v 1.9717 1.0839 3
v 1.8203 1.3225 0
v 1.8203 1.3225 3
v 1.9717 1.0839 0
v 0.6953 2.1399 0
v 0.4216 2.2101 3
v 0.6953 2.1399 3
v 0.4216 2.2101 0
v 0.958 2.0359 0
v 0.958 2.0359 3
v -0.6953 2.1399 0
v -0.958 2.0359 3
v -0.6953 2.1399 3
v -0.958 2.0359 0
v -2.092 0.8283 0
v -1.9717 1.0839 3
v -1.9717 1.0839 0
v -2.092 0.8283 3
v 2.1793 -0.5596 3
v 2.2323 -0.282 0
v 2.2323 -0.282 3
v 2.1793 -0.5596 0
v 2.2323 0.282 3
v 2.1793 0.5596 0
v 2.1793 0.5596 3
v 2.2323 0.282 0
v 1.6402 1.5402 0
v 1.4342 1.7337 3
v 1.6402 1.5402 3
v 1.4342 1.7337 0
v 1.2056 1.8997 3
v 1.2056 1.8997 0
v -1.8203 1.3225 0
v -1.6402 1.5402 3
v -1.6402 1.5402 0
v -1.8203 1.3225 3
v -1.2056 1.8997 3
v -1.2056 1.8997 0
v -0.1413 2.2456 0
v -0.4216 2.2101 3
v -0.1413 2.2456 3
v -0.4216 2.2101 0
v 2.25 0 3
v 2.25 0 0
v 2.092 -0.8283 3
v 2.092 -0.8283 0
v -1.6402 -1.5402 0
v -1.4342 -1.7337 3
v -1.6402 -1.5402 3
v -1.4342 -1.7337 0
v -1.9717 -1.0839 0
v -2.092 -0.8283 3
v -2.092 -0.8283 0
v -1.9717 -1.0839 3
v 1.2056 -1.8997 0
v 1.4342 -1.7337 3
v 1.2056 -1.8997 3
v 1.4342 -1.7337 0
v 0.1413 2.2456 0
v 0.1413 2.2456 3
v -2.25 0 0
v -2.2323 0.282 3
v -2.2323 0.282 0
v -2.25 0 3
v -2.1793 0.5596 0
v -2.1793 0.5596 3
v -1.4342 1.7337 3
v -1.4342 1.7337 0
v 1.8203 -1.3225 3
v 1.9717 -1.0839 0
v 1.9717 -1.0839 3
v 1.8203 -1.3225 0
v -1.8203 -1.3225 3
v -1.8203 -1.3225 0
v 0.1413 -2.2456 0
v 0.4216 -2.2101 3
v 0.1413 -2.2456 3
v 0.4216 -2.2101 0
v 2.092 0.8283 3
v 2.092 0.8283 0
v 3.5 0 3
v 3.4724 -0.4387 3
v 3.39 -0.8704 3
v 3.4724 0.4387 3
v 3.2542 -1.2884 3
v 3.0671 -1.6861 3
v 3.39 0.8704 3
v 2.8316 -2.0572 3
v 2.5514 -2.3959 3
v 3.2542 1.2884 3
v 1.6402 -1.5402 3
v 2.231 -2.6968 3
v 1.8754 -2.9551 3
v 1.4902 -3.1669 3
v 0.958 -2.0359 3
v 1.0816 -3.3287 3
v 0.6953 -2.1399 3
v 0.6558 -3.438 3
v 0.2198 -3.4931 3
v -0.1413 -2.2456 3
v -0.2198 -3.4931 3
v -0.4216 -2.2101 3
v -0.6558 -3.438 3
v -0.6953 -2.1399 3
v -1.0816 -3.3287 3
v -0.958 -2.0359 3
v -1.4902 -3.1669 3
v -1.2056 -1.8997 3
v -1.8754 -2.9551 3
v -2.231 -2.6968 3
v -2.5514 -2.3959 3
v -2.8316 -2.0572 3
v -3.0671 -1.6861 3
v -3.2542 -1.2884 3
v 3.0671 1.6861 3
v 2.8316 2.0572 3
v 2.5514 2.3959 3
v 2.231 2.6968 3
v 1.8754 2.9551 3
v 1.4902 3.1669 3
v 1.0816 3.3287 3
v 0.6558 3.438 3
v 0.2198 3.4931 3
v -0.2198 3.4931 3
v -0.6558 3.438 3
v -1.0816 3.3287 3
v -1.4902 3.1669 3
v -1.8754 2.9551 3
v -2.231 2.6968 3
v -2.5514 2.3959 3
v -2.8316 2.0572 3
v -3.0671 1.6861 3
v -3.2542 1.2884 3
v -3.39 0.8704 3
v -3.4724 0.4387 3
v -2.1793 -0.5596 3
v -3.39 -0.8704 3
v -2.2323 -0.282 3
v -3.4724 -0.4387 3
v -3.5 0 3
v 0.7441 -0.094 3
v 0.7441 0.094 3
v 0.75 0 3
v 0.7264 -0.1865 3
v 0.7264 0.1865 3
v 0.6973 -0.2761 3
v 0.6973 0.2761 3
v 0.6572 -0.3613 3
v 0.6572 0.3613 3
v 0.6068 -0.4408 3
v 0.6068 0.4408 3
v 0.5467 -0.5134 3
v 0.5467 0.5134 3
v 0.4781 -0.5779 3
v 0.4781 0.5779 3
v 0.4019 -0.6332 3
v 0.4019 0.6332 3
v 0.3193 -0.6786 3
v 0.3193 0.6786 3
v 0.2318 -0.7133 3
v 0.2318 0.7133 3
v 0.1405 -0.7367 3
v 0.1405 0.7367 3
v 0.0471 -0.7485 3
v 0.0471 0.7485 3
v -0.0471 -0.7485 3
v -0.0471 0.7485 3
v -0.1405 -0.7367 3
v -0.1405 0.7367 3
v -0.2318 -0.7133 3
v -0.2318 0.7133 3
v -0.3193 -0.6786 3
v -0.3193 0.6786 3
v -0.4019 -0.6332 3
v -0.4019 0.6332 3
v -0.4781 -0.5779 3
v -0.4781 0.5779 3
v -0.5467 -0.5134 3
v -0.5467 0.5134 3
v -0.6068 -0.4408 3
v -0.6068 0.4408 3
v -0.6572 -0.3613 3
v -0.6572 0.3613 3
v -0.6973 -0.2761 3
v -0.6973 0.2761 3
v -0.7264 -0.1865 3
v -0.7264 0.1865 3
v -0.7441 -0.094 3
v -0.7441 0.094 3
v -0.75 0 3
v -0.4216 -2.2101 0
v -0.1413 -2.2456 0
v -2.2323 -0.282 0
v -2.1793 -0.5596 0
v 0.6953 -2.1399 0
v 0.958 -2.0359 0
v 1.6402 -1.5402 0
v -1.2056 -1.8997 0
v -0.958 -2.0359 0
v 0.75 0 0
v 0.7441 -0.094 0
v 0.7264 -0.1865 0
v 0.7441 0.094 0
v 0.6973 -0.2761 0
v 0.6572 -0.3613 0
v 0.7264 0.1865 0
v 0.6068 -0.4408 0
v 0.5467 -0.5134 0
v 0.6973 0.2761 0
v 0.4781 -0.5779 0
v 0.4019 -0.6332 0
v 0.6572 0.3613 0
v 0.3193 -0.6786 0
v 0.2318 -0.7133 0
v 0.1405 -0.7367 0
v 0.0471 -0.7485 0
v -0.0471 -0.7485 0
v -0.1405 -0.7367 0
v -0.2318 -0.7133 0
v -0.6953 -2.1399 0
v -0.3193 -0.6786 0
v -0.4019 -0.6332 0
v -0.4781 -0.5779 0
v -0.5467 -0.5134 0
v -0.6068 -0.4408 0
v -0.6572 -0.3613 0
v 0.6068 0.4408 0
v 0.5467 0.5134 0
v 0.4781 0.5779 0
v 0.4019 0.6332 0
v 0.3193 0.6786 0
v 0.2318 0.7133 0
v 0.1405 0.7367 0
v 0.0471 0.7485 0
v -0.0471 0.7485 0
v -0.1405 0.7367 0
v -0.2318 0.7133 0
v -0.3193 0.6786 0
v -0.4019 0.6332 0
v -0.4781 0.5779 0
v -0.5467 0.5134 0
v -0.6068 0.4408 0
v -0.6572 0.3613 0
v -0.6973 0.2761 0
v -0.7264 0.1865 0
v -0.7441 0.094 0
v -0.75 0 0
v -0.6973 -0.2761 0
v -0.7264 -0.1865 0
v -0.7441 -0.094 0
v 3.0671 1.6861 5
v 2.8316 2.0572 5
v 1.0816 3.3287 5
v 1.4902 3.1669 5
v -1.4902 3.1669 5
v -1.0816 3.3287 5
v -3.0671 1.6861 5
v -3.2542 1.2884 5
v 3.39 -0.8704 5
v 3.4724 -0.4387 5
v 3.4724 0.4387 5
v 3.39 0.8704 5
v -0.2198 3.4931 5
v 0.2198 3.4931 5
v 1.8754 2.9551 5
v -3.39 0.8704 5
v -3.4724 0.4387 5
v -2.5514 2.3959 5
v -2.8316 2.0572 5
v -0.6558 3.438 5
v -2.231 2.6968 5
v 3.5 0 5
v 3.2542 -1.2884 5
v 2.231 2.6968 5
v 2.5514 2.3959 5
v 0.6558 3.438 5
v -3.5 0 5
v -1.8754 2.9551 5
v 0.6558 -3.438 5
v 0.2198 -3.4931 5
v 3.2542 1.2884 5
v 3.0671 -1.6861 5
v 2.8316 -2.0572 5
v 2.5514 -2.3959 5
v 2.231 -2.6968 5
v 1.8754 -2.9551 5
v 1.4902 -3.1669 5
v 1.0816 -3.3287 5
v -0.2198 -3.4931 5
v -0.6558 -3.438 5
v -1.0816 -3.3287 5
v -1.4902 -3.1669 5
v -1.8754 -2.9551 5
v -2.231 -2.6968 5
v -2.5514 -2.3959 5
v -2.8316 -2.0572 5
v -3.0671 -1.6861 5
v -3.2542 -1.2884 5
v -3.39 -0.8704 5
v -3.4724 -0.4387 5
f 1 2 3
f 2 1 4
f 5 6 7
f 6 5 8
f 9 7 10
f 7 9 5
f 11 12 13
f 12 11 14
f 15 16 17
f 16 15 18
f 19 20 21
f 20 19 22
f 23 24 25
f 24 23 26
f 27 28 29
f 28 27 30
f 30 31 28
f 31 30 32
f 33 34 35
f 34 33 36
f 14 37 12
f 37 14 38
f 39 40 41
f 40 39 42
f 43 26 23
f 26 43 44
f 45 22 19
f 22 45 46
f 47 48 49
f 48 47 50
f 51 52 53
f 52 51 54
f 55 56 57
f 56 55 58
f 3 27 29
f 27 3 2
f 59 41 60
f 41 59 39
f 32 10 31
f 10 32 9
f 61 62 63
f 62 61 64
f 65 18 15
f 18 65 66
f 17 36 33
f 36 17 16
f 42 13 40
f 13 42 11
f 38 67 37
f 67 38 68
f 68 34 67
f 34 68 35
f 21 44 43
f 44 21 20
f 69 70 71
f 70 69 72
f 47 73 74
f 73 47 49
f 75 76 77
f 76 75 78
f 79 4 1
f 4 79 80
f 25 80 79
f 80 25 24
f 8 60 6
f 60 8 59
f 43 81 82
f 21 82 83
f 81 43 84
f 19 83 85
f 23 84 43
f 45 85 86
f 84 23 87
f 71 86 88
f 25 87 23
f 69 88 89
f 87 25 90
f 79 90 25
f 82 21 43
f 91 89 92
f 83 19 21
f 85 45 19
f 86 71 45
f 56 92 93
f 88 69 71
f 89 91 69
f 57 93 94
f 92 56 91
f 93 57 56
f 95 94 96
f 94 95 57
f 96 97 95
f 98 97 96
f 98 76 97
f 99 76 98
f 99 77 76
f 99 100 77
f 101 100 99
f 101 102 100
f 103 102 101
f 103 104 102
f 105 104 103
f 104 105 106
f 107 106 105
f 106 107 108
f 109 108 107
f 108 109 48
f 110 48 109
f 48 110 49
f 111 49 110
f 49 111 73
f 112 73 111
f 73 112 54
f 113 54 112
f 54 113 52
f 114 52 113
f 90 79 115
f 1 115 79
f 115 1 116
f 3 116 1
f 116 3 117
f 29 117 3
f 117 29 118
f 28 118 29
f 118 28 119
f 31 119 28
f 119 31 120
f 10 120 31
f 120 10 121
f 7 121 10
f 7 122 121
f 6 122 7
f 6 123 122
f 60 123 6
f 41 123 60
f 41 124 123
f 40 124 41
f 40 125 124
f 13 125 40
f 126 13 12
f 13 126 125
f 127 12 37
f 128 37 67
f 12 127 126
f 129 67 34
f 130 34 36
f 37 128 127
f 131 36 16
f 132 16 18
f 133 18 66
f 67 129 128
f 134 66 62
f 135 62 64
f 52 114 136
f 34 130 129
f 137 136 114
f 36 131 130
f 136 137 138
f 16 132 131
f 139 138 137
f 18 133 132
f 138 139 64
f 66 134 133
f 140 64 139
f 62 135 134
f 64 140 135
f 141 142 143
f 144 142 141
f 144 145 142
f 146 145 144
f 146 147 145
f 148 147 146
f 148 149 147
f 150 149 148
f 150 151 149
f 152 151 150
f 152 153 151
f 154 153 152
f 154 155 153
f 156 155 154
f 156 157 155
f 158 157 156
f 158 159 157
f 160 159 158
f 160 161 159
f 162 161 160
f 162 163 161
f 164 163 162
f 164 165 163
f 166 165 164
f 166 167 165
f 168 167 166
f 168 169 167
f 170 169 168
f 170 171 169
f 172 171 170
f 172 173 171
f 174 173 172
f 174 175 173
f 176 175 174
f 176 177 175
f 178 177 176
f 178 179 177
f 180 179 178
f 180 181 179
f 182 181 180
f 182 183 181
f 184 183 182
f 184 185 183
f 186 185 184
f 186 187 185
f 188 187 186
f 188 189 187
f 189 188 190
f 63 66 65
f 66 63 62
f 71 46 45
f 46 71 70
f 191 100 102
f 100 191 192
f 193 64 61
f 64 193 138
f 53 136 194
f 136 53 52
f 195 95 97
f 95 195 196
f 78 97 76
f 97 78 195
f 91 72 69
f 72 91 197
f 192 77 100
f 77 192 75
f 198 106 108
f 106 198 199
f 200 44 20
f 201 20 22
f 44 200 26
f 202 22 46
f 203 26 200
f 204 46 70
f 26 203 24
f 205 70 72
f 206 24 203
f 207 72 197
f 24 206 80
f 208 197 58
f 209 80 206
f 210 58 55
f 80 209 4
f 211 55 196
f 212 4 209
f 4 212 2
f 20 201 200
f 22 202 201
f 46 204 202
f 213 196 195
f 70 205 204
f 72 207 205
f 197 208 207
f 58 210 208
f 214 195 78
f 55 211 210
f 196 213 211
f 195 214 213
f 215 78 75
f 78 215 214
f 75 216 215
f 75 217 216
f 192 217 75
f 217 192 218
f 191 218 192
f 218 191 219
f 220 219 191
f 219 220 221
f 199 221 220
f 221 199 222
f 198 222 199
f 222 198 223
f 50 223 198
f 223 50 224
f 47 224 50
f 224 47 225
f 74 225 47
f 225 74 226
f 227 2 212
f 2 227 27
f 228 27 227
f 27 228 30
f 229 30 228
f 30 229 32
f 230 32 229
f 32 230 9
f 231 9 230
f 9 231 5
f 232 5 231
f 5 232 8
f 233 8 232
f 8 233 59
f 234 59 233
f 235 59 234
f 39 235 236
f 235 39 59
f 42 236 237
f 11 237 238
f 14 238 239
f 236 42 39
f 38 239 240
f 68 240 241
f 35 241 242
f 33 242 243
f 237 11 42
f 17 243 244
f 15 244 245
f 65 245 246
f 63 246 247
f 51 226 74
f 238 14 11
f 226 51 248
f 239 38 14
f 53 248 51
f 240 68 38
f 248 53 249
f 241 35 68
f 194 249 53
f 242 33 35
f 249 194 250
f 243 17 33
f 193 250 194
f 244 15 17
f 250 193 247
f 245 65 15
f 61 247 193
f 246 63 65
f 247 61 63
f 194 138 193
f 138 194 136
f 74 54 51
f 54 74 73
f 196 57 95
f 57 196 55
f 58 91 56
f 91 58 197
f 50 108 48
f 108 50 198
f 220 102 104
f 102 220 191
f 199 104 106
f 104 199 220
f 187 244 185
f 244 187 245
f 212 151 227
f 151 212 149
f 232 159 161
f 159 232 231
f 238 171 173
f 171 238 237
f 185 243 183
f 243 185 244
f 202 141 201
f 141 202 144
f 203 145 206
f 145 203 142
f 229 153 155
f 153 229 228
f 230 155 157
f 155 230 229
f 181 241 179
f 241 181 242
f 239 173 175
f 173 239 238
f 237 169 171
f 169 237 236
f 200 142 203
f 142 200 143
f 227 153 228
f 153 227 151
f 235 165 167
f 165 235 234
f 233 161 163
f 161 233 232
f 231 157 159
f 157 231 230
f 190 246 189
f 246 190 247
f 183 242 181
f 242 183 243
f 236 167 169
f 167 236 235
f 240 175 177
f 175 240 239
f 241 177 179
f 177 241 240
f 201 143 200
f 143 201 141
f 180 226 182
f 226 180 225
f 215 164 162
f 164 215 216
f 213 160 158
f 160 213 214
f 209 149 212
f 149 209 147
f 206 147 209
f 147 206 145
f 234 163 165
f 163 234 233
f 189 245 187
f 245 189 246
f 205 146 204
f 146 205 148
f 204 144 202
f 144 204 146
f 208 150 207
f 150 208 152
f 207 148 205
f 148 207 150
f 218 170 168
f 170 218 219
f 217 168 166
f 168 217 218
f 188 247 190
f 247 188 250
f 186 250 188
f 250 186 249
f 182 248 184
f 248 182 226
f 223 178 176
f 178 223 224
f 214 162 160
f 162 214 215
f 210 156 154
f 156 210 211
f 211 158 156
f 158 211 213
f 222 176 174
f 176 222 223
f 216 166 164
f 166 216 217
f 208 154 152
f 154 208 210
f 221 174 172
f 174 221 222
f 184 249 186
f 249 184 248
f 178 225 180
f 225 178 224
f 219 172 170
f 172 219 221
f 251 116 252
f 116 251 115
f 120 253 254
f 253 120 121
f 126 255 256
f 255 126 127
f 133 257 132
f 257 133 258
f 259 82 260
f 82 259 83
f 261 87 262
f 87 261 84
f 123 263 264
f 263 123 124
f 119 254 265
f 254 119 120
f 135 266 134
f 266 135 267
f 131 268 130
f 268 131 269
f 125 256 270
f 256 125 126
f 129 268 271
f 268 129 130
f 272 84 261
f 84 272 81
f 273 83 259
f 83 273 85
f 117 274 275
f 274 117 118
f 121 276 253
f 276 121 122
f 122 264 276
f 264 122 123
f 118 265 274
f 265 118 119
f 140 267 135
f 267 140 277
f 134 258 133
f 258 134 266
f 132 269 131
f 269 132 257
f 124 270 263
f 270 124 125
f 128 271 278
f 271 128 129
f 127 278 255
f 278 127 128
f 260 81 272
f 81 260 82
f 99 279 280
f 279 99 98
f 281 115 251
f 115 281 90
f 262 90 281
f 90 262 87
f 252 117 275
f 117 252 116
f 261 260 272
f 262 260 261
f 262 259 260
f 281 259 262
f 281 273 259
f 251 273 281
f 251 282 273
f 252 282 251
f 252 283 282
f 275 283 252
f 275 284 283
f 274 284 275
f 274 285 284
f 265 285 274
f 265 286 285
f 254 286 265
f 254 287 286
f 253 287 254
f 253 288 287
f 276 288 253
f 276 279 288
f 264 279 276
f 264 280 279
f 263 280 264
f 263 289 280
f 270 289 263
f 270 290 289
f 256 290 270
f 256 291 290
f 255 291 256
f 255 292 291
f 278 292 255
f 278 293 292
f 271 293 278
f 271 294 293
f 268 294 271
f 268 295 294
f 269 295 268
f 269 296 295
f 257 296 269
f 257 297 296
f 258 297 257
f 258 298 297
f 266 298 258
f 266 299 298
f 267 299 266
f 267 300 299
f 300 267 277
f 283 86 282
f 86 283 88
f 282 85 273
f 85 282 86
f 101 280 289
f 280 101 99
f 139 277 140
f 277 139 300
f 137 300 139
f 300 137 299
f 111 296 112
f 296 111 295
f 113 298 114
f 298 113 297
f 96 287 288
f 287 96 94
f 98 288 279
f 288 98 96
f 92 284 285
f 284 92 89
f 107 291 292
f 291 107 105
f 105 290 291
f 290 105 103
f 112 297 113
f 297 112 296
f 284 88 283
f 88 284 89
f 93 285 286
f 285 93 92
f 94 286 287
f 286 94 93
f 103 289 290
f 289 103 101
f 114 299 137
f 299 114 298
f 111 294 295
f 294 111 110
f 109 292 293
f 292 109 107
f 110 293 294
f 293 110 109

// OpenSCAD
/**
 * Martin Egli
 * 2021-08-22
 * tip kick replacement hat
 */
res = 50;

module hat(dout = 7, din = 4.5, dhole = 1.5, hhole = 3) {
    translate([0, 0, hhole])
    cylinder(d = dout, h = 2, $fn = res);
    difference() {
        translate([0, 0, 0])
        cylinder(d = din, h = hhole, $fn = res);
        translate([0, 0, -1])
        cylinder(d = dhole, h = hhole + 1, $fn = res);
    }
}

hat();
